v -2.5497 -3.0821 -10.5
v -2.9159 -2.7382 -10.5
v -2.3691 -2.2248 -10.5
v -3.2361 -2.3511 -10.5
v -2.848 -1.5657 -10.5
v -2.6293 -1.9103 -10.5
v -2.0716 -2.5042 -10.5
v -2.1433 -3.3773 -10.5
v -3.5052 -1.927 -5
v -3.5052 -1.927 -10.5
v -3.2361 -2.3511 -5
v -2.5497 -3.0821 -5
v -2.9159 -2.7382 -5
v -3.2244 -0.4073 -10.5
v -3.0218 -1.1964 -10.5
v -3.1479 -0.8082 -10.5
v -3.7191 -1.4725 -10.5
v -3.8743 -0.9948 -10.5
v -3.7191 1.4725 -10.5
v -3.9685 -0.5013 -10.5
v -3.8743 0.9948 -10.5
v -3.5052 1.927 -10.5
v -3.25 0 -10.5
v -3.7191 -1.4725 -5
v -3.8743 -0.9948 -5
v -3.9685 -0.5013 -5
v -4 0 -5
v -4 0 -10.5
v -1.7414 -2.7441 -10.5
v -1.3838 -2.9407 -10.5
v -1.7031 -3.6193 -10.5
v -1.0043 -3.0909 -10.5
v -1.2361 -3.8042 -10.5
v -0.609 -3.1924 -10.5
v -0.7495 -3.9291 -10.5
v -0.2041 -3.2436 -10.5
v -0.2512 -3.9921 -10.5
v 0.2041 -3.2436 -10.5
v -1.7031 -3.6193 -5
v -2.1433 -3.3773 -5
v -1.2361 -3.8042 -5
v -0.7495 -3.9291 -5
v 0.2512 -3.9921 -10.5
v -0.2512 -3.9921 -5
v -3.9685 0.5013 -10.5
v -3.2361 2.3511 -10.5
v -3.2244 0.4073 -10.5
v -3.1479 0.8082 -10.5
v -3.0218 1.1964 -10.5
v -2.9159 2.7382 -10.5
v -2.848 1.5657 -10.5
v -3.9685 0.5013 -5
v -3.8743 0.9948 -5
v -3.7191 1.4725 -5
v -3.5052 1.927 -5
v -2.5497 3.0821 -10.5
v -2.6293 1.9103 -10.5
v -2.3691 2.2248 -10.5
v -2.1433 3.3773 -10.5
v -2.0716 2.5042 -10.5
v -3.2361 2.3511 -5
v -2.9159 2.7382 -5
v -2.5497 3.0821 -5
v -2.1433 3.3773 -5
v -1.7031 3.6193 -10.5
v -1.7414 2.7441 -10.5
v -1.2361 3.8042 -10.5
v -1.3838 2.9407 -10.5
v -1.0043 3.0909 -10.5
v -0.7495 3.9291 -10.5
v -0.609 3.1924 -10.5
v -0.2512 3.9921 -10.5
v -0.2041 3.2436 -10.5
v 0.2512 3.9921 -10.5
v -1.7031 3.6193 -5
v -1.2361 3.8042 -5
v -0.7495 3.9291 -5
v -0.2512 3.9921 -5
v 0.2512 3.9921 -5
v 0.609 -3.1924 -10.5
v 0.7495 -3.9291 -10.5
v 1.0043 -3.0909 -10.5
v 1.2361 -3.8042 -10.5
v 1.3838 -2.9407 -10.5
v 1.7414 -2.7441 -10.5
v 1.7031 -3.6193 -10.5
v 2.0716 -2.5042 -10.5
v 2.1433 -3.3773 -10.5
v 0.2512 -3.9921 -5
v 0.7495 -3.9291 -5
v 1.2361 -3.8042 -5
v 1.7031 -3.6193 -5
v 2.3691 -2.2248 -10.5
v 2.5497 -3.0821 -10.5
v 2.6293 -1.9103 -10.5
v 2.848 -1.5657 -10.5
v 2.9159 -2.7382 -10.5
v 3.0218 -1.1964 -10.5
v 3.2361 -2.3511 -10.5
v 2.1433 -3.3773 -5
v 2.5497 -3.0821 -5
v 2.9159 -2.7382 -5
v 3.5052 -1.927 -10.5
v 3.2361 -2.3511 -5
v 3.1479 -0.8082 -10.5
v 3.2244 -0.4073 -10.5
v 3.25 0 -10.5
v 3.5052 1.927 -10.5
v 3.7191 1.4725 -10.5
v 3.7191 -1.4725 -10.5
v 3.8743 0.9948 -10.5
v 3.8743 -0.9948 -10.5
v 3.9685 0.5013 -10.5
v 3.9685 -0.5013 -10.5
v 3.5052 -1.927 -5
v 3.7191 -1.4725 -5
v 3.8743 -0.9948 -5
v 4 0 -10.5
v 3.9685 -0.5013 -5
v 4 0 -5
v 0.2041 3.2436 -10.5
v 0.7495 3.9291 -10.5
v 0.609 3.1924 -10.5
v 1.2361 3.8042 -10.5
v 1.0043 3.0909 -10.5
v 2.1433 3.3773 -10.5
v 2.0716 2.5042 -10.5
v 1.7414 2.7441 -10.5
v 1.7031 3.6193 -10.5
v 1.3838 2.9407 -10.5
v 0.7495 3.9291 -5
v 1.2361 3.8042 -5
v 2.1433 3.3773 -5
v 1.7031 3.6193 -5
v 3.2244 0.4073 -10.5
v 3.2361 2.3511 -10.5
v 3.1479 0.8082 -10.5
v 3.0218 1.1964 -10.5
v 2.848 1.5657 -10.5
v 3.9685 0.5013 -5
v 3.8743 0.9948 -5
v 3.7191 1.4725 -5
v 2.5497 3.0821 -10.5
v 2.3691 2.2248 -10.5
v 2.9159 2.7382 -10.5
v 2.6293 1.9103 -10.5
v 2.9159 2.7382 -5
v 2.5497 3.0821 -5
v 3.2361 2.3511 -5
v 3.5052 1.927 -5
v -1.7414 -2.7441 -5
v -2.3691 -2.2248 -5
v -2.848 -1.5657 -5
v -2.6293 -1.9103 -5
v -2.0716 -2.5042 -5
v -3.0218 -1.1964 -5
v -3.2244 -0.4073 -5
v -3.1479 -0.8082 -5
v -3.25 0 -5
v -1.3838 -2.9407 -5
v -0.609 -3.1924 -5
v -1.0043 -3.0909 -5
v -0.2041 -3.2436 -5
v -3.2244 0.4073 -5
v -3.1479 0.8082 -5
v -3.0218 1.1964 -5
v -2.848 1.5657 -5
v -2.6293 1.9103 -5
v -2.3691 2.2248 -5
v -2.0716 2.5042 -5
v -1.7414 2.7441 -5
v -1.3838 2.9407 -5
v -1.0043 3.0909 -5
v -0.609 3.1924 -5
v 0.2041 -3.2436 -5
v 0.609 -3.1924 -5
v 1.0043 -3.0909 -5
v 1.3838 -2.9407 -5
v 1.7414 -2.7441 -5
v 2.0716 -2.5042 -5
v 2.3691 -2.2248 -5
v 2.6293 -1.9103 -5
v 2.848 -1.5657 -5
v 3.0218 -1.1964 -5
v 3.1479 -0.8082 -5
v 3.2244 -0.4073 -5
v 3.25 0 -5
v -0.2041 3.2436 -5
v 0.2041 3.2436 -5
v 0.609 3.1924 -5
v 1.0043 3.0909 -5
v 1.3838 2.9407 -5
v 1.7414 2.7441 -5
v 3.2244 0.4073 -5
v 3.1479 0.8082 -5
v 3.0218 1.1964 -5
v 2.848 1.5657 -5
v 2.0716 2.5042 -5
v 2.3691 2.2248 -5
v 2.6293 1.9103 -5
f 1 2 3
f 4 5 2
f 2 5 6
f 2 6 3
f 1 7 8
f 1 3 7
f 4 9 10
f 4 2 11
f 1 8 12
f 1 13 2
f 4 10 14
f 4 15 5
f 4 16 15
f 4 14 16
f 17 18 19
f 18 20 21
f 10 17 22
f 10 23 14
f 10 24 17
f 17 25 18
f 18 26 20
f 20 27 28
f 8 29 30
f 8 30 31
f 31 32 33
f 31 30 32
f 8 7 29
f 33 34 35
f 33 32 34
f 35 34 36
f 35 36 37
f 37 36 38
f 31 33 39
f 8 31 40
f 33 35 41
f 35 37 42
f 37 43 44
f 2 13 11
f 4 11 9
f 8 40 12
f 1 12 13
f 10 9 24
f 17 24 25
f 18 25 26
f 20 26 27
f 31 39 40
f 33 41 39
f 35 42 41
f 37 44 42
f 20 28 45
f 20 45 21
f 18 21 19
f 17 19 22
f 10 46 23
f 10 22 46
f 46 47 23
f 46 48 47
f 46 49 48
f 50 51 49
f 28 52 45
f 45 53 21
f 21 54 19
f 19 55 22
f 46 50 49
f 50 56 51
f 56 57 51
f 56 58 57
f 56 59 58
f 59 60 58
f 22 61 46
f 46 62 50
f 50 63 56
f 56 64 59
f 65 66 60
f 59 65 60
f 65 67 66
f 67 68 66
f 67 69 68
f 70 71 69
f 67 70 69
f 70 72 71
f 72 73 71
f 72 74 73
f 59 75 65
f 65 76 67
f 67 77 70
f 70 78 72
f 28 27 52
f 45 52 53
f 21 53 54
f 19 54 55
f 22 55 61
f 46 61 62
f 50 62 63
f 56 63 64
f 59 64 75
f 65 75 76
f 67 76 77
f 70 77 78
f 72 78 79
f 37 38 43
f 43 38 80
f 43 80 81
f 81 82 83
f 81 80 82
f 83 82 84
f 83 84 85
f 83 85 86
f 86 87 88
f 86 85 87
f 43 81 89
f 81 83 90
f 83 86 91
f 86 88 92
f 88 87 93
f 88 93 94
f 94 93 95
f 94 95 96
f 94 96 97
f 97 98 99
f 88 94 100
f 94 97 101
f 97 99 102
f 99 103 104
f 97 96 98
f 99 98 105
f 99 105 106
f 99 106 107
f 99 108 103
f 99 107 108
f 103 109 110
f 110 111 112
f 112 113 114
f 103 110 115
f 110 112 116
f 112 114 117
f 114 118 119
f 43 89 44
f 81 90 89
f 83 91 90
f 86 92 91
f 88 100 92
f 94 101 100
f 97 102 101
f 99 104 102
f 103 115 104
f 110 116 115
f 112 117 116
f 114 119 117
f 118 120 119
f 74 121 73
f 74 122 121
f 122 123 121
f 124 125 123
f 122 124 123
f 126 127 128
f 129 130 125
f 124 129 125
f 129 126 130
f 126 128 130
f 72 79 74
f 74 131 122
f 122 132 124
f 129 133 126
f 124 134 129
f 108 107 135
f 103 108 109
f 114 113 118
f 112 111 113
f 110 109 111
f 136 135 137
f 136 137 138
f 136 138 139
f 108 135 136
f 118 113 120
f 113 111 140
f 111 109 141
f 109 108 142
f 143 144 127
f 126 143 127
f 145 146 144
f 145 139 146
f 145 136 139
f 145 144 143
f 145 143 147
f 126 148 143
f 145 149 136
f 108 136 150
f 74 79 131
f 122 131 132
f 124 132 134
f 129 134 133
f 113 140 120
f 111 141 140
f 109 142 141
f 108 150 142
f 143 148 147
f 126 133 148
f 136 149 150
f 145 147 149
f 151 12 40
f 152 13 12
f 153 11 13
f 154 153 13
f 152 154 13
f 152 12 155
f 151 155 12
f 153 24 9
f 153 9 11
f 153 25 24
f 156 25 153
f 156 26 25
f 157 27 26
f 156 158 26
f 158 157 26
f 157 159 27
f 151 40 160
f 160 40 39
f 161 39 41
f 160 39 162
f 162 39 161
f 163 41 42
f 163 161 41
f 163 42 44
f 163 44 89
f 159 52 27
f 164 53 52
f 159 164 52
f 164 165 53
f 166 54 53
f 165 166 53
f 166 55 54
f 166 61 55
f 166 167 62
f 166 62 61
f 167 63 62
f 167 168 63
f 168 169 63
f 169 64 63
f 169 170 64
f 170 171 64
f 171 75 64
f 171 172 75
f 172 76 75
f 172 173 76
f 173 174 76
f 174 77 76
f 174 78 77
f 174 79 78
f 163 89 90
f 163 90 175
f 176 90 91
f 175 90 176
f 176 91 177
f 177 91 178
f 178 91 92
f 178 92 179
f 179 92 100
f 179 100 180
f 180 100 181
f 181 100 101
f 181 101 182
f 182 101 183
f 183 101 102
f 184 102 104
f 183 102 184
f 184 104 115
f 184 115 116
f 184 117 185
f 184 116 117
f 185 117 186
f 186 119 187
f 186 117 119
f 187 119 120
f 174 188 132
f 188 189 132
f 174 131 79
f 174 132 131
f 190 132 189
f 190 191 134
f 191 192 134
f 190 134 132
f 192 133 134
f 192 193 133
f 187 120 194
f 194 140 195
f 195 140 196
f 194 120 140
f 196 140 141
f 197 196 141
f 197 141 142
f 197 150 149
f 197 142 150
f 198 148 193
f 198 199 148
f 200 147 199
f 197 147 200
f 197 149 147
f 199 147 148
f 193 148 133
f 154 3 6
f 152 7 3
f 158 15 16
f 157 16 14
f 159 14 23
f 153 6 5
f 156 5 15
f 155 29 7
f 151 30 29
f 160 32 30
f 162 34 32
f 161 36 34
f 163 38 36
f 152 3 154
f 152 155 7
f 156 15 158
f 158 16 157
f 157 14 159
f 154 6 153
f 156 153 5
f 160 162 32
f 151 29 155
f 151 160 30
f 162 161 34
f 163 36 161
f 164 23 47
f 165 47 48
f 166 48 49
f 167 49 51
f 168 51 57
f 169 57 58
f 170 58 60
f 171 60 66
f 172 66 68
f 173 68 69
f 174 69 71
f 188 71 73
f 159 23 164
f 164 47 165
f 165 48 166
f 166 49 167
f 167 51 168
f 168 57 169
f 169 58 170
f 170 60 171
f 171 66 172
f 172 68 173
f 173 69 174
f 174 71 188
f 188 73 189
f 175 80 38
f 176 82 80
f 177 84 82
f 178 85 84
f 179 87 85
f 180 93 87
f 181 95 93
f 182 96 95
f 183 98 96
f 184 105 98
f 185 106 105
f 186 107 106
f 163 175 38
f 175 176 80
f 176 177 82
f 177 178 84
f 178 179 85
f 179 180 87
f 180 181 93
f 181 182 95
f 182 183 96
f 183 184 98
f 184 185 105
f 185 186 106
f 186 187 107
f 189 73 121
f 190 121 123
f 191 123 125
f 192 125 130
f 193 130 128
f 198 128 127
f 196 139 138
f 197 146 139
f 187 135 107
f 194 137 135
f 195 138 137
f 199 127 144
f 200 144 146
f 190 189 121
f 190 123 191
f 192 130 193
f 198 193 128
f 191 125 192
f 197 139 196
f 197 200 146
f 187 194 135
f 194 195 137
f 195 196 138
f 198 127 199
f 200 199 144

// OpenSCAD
$fn = 50;

difference() {
	union() {
		translate(v = [0, 0, -10.5]) {
			cylinder(h = 10.5, r = 4.0);
		}
	}
	union() {
		translate(v = [0, 0, 0]) {
			rotate(a = [0, 0, 0]) {
				difference() {
					union() {
						translate(v = [0, 0, -5]) {
							linear_extrude(height = 5) {
								polygon(points = [[5.914249999999999, 0.0], [2.957125, 5.1218907443321156], [-2.9571249999999982, 5.1218907443321156], [-5.914249999999999, 7.242867331857232e-16], [-2.9571250000000022, -5.121890744332115], [2.9571249999999956, -5.121890744332118]]);
							}
						}
					}
					union();
				}
			}
		}
		#translate(v = [0, 0, -100.0]) {
			cylinder(h = 200, r = 3.25);
		}
	}
}
